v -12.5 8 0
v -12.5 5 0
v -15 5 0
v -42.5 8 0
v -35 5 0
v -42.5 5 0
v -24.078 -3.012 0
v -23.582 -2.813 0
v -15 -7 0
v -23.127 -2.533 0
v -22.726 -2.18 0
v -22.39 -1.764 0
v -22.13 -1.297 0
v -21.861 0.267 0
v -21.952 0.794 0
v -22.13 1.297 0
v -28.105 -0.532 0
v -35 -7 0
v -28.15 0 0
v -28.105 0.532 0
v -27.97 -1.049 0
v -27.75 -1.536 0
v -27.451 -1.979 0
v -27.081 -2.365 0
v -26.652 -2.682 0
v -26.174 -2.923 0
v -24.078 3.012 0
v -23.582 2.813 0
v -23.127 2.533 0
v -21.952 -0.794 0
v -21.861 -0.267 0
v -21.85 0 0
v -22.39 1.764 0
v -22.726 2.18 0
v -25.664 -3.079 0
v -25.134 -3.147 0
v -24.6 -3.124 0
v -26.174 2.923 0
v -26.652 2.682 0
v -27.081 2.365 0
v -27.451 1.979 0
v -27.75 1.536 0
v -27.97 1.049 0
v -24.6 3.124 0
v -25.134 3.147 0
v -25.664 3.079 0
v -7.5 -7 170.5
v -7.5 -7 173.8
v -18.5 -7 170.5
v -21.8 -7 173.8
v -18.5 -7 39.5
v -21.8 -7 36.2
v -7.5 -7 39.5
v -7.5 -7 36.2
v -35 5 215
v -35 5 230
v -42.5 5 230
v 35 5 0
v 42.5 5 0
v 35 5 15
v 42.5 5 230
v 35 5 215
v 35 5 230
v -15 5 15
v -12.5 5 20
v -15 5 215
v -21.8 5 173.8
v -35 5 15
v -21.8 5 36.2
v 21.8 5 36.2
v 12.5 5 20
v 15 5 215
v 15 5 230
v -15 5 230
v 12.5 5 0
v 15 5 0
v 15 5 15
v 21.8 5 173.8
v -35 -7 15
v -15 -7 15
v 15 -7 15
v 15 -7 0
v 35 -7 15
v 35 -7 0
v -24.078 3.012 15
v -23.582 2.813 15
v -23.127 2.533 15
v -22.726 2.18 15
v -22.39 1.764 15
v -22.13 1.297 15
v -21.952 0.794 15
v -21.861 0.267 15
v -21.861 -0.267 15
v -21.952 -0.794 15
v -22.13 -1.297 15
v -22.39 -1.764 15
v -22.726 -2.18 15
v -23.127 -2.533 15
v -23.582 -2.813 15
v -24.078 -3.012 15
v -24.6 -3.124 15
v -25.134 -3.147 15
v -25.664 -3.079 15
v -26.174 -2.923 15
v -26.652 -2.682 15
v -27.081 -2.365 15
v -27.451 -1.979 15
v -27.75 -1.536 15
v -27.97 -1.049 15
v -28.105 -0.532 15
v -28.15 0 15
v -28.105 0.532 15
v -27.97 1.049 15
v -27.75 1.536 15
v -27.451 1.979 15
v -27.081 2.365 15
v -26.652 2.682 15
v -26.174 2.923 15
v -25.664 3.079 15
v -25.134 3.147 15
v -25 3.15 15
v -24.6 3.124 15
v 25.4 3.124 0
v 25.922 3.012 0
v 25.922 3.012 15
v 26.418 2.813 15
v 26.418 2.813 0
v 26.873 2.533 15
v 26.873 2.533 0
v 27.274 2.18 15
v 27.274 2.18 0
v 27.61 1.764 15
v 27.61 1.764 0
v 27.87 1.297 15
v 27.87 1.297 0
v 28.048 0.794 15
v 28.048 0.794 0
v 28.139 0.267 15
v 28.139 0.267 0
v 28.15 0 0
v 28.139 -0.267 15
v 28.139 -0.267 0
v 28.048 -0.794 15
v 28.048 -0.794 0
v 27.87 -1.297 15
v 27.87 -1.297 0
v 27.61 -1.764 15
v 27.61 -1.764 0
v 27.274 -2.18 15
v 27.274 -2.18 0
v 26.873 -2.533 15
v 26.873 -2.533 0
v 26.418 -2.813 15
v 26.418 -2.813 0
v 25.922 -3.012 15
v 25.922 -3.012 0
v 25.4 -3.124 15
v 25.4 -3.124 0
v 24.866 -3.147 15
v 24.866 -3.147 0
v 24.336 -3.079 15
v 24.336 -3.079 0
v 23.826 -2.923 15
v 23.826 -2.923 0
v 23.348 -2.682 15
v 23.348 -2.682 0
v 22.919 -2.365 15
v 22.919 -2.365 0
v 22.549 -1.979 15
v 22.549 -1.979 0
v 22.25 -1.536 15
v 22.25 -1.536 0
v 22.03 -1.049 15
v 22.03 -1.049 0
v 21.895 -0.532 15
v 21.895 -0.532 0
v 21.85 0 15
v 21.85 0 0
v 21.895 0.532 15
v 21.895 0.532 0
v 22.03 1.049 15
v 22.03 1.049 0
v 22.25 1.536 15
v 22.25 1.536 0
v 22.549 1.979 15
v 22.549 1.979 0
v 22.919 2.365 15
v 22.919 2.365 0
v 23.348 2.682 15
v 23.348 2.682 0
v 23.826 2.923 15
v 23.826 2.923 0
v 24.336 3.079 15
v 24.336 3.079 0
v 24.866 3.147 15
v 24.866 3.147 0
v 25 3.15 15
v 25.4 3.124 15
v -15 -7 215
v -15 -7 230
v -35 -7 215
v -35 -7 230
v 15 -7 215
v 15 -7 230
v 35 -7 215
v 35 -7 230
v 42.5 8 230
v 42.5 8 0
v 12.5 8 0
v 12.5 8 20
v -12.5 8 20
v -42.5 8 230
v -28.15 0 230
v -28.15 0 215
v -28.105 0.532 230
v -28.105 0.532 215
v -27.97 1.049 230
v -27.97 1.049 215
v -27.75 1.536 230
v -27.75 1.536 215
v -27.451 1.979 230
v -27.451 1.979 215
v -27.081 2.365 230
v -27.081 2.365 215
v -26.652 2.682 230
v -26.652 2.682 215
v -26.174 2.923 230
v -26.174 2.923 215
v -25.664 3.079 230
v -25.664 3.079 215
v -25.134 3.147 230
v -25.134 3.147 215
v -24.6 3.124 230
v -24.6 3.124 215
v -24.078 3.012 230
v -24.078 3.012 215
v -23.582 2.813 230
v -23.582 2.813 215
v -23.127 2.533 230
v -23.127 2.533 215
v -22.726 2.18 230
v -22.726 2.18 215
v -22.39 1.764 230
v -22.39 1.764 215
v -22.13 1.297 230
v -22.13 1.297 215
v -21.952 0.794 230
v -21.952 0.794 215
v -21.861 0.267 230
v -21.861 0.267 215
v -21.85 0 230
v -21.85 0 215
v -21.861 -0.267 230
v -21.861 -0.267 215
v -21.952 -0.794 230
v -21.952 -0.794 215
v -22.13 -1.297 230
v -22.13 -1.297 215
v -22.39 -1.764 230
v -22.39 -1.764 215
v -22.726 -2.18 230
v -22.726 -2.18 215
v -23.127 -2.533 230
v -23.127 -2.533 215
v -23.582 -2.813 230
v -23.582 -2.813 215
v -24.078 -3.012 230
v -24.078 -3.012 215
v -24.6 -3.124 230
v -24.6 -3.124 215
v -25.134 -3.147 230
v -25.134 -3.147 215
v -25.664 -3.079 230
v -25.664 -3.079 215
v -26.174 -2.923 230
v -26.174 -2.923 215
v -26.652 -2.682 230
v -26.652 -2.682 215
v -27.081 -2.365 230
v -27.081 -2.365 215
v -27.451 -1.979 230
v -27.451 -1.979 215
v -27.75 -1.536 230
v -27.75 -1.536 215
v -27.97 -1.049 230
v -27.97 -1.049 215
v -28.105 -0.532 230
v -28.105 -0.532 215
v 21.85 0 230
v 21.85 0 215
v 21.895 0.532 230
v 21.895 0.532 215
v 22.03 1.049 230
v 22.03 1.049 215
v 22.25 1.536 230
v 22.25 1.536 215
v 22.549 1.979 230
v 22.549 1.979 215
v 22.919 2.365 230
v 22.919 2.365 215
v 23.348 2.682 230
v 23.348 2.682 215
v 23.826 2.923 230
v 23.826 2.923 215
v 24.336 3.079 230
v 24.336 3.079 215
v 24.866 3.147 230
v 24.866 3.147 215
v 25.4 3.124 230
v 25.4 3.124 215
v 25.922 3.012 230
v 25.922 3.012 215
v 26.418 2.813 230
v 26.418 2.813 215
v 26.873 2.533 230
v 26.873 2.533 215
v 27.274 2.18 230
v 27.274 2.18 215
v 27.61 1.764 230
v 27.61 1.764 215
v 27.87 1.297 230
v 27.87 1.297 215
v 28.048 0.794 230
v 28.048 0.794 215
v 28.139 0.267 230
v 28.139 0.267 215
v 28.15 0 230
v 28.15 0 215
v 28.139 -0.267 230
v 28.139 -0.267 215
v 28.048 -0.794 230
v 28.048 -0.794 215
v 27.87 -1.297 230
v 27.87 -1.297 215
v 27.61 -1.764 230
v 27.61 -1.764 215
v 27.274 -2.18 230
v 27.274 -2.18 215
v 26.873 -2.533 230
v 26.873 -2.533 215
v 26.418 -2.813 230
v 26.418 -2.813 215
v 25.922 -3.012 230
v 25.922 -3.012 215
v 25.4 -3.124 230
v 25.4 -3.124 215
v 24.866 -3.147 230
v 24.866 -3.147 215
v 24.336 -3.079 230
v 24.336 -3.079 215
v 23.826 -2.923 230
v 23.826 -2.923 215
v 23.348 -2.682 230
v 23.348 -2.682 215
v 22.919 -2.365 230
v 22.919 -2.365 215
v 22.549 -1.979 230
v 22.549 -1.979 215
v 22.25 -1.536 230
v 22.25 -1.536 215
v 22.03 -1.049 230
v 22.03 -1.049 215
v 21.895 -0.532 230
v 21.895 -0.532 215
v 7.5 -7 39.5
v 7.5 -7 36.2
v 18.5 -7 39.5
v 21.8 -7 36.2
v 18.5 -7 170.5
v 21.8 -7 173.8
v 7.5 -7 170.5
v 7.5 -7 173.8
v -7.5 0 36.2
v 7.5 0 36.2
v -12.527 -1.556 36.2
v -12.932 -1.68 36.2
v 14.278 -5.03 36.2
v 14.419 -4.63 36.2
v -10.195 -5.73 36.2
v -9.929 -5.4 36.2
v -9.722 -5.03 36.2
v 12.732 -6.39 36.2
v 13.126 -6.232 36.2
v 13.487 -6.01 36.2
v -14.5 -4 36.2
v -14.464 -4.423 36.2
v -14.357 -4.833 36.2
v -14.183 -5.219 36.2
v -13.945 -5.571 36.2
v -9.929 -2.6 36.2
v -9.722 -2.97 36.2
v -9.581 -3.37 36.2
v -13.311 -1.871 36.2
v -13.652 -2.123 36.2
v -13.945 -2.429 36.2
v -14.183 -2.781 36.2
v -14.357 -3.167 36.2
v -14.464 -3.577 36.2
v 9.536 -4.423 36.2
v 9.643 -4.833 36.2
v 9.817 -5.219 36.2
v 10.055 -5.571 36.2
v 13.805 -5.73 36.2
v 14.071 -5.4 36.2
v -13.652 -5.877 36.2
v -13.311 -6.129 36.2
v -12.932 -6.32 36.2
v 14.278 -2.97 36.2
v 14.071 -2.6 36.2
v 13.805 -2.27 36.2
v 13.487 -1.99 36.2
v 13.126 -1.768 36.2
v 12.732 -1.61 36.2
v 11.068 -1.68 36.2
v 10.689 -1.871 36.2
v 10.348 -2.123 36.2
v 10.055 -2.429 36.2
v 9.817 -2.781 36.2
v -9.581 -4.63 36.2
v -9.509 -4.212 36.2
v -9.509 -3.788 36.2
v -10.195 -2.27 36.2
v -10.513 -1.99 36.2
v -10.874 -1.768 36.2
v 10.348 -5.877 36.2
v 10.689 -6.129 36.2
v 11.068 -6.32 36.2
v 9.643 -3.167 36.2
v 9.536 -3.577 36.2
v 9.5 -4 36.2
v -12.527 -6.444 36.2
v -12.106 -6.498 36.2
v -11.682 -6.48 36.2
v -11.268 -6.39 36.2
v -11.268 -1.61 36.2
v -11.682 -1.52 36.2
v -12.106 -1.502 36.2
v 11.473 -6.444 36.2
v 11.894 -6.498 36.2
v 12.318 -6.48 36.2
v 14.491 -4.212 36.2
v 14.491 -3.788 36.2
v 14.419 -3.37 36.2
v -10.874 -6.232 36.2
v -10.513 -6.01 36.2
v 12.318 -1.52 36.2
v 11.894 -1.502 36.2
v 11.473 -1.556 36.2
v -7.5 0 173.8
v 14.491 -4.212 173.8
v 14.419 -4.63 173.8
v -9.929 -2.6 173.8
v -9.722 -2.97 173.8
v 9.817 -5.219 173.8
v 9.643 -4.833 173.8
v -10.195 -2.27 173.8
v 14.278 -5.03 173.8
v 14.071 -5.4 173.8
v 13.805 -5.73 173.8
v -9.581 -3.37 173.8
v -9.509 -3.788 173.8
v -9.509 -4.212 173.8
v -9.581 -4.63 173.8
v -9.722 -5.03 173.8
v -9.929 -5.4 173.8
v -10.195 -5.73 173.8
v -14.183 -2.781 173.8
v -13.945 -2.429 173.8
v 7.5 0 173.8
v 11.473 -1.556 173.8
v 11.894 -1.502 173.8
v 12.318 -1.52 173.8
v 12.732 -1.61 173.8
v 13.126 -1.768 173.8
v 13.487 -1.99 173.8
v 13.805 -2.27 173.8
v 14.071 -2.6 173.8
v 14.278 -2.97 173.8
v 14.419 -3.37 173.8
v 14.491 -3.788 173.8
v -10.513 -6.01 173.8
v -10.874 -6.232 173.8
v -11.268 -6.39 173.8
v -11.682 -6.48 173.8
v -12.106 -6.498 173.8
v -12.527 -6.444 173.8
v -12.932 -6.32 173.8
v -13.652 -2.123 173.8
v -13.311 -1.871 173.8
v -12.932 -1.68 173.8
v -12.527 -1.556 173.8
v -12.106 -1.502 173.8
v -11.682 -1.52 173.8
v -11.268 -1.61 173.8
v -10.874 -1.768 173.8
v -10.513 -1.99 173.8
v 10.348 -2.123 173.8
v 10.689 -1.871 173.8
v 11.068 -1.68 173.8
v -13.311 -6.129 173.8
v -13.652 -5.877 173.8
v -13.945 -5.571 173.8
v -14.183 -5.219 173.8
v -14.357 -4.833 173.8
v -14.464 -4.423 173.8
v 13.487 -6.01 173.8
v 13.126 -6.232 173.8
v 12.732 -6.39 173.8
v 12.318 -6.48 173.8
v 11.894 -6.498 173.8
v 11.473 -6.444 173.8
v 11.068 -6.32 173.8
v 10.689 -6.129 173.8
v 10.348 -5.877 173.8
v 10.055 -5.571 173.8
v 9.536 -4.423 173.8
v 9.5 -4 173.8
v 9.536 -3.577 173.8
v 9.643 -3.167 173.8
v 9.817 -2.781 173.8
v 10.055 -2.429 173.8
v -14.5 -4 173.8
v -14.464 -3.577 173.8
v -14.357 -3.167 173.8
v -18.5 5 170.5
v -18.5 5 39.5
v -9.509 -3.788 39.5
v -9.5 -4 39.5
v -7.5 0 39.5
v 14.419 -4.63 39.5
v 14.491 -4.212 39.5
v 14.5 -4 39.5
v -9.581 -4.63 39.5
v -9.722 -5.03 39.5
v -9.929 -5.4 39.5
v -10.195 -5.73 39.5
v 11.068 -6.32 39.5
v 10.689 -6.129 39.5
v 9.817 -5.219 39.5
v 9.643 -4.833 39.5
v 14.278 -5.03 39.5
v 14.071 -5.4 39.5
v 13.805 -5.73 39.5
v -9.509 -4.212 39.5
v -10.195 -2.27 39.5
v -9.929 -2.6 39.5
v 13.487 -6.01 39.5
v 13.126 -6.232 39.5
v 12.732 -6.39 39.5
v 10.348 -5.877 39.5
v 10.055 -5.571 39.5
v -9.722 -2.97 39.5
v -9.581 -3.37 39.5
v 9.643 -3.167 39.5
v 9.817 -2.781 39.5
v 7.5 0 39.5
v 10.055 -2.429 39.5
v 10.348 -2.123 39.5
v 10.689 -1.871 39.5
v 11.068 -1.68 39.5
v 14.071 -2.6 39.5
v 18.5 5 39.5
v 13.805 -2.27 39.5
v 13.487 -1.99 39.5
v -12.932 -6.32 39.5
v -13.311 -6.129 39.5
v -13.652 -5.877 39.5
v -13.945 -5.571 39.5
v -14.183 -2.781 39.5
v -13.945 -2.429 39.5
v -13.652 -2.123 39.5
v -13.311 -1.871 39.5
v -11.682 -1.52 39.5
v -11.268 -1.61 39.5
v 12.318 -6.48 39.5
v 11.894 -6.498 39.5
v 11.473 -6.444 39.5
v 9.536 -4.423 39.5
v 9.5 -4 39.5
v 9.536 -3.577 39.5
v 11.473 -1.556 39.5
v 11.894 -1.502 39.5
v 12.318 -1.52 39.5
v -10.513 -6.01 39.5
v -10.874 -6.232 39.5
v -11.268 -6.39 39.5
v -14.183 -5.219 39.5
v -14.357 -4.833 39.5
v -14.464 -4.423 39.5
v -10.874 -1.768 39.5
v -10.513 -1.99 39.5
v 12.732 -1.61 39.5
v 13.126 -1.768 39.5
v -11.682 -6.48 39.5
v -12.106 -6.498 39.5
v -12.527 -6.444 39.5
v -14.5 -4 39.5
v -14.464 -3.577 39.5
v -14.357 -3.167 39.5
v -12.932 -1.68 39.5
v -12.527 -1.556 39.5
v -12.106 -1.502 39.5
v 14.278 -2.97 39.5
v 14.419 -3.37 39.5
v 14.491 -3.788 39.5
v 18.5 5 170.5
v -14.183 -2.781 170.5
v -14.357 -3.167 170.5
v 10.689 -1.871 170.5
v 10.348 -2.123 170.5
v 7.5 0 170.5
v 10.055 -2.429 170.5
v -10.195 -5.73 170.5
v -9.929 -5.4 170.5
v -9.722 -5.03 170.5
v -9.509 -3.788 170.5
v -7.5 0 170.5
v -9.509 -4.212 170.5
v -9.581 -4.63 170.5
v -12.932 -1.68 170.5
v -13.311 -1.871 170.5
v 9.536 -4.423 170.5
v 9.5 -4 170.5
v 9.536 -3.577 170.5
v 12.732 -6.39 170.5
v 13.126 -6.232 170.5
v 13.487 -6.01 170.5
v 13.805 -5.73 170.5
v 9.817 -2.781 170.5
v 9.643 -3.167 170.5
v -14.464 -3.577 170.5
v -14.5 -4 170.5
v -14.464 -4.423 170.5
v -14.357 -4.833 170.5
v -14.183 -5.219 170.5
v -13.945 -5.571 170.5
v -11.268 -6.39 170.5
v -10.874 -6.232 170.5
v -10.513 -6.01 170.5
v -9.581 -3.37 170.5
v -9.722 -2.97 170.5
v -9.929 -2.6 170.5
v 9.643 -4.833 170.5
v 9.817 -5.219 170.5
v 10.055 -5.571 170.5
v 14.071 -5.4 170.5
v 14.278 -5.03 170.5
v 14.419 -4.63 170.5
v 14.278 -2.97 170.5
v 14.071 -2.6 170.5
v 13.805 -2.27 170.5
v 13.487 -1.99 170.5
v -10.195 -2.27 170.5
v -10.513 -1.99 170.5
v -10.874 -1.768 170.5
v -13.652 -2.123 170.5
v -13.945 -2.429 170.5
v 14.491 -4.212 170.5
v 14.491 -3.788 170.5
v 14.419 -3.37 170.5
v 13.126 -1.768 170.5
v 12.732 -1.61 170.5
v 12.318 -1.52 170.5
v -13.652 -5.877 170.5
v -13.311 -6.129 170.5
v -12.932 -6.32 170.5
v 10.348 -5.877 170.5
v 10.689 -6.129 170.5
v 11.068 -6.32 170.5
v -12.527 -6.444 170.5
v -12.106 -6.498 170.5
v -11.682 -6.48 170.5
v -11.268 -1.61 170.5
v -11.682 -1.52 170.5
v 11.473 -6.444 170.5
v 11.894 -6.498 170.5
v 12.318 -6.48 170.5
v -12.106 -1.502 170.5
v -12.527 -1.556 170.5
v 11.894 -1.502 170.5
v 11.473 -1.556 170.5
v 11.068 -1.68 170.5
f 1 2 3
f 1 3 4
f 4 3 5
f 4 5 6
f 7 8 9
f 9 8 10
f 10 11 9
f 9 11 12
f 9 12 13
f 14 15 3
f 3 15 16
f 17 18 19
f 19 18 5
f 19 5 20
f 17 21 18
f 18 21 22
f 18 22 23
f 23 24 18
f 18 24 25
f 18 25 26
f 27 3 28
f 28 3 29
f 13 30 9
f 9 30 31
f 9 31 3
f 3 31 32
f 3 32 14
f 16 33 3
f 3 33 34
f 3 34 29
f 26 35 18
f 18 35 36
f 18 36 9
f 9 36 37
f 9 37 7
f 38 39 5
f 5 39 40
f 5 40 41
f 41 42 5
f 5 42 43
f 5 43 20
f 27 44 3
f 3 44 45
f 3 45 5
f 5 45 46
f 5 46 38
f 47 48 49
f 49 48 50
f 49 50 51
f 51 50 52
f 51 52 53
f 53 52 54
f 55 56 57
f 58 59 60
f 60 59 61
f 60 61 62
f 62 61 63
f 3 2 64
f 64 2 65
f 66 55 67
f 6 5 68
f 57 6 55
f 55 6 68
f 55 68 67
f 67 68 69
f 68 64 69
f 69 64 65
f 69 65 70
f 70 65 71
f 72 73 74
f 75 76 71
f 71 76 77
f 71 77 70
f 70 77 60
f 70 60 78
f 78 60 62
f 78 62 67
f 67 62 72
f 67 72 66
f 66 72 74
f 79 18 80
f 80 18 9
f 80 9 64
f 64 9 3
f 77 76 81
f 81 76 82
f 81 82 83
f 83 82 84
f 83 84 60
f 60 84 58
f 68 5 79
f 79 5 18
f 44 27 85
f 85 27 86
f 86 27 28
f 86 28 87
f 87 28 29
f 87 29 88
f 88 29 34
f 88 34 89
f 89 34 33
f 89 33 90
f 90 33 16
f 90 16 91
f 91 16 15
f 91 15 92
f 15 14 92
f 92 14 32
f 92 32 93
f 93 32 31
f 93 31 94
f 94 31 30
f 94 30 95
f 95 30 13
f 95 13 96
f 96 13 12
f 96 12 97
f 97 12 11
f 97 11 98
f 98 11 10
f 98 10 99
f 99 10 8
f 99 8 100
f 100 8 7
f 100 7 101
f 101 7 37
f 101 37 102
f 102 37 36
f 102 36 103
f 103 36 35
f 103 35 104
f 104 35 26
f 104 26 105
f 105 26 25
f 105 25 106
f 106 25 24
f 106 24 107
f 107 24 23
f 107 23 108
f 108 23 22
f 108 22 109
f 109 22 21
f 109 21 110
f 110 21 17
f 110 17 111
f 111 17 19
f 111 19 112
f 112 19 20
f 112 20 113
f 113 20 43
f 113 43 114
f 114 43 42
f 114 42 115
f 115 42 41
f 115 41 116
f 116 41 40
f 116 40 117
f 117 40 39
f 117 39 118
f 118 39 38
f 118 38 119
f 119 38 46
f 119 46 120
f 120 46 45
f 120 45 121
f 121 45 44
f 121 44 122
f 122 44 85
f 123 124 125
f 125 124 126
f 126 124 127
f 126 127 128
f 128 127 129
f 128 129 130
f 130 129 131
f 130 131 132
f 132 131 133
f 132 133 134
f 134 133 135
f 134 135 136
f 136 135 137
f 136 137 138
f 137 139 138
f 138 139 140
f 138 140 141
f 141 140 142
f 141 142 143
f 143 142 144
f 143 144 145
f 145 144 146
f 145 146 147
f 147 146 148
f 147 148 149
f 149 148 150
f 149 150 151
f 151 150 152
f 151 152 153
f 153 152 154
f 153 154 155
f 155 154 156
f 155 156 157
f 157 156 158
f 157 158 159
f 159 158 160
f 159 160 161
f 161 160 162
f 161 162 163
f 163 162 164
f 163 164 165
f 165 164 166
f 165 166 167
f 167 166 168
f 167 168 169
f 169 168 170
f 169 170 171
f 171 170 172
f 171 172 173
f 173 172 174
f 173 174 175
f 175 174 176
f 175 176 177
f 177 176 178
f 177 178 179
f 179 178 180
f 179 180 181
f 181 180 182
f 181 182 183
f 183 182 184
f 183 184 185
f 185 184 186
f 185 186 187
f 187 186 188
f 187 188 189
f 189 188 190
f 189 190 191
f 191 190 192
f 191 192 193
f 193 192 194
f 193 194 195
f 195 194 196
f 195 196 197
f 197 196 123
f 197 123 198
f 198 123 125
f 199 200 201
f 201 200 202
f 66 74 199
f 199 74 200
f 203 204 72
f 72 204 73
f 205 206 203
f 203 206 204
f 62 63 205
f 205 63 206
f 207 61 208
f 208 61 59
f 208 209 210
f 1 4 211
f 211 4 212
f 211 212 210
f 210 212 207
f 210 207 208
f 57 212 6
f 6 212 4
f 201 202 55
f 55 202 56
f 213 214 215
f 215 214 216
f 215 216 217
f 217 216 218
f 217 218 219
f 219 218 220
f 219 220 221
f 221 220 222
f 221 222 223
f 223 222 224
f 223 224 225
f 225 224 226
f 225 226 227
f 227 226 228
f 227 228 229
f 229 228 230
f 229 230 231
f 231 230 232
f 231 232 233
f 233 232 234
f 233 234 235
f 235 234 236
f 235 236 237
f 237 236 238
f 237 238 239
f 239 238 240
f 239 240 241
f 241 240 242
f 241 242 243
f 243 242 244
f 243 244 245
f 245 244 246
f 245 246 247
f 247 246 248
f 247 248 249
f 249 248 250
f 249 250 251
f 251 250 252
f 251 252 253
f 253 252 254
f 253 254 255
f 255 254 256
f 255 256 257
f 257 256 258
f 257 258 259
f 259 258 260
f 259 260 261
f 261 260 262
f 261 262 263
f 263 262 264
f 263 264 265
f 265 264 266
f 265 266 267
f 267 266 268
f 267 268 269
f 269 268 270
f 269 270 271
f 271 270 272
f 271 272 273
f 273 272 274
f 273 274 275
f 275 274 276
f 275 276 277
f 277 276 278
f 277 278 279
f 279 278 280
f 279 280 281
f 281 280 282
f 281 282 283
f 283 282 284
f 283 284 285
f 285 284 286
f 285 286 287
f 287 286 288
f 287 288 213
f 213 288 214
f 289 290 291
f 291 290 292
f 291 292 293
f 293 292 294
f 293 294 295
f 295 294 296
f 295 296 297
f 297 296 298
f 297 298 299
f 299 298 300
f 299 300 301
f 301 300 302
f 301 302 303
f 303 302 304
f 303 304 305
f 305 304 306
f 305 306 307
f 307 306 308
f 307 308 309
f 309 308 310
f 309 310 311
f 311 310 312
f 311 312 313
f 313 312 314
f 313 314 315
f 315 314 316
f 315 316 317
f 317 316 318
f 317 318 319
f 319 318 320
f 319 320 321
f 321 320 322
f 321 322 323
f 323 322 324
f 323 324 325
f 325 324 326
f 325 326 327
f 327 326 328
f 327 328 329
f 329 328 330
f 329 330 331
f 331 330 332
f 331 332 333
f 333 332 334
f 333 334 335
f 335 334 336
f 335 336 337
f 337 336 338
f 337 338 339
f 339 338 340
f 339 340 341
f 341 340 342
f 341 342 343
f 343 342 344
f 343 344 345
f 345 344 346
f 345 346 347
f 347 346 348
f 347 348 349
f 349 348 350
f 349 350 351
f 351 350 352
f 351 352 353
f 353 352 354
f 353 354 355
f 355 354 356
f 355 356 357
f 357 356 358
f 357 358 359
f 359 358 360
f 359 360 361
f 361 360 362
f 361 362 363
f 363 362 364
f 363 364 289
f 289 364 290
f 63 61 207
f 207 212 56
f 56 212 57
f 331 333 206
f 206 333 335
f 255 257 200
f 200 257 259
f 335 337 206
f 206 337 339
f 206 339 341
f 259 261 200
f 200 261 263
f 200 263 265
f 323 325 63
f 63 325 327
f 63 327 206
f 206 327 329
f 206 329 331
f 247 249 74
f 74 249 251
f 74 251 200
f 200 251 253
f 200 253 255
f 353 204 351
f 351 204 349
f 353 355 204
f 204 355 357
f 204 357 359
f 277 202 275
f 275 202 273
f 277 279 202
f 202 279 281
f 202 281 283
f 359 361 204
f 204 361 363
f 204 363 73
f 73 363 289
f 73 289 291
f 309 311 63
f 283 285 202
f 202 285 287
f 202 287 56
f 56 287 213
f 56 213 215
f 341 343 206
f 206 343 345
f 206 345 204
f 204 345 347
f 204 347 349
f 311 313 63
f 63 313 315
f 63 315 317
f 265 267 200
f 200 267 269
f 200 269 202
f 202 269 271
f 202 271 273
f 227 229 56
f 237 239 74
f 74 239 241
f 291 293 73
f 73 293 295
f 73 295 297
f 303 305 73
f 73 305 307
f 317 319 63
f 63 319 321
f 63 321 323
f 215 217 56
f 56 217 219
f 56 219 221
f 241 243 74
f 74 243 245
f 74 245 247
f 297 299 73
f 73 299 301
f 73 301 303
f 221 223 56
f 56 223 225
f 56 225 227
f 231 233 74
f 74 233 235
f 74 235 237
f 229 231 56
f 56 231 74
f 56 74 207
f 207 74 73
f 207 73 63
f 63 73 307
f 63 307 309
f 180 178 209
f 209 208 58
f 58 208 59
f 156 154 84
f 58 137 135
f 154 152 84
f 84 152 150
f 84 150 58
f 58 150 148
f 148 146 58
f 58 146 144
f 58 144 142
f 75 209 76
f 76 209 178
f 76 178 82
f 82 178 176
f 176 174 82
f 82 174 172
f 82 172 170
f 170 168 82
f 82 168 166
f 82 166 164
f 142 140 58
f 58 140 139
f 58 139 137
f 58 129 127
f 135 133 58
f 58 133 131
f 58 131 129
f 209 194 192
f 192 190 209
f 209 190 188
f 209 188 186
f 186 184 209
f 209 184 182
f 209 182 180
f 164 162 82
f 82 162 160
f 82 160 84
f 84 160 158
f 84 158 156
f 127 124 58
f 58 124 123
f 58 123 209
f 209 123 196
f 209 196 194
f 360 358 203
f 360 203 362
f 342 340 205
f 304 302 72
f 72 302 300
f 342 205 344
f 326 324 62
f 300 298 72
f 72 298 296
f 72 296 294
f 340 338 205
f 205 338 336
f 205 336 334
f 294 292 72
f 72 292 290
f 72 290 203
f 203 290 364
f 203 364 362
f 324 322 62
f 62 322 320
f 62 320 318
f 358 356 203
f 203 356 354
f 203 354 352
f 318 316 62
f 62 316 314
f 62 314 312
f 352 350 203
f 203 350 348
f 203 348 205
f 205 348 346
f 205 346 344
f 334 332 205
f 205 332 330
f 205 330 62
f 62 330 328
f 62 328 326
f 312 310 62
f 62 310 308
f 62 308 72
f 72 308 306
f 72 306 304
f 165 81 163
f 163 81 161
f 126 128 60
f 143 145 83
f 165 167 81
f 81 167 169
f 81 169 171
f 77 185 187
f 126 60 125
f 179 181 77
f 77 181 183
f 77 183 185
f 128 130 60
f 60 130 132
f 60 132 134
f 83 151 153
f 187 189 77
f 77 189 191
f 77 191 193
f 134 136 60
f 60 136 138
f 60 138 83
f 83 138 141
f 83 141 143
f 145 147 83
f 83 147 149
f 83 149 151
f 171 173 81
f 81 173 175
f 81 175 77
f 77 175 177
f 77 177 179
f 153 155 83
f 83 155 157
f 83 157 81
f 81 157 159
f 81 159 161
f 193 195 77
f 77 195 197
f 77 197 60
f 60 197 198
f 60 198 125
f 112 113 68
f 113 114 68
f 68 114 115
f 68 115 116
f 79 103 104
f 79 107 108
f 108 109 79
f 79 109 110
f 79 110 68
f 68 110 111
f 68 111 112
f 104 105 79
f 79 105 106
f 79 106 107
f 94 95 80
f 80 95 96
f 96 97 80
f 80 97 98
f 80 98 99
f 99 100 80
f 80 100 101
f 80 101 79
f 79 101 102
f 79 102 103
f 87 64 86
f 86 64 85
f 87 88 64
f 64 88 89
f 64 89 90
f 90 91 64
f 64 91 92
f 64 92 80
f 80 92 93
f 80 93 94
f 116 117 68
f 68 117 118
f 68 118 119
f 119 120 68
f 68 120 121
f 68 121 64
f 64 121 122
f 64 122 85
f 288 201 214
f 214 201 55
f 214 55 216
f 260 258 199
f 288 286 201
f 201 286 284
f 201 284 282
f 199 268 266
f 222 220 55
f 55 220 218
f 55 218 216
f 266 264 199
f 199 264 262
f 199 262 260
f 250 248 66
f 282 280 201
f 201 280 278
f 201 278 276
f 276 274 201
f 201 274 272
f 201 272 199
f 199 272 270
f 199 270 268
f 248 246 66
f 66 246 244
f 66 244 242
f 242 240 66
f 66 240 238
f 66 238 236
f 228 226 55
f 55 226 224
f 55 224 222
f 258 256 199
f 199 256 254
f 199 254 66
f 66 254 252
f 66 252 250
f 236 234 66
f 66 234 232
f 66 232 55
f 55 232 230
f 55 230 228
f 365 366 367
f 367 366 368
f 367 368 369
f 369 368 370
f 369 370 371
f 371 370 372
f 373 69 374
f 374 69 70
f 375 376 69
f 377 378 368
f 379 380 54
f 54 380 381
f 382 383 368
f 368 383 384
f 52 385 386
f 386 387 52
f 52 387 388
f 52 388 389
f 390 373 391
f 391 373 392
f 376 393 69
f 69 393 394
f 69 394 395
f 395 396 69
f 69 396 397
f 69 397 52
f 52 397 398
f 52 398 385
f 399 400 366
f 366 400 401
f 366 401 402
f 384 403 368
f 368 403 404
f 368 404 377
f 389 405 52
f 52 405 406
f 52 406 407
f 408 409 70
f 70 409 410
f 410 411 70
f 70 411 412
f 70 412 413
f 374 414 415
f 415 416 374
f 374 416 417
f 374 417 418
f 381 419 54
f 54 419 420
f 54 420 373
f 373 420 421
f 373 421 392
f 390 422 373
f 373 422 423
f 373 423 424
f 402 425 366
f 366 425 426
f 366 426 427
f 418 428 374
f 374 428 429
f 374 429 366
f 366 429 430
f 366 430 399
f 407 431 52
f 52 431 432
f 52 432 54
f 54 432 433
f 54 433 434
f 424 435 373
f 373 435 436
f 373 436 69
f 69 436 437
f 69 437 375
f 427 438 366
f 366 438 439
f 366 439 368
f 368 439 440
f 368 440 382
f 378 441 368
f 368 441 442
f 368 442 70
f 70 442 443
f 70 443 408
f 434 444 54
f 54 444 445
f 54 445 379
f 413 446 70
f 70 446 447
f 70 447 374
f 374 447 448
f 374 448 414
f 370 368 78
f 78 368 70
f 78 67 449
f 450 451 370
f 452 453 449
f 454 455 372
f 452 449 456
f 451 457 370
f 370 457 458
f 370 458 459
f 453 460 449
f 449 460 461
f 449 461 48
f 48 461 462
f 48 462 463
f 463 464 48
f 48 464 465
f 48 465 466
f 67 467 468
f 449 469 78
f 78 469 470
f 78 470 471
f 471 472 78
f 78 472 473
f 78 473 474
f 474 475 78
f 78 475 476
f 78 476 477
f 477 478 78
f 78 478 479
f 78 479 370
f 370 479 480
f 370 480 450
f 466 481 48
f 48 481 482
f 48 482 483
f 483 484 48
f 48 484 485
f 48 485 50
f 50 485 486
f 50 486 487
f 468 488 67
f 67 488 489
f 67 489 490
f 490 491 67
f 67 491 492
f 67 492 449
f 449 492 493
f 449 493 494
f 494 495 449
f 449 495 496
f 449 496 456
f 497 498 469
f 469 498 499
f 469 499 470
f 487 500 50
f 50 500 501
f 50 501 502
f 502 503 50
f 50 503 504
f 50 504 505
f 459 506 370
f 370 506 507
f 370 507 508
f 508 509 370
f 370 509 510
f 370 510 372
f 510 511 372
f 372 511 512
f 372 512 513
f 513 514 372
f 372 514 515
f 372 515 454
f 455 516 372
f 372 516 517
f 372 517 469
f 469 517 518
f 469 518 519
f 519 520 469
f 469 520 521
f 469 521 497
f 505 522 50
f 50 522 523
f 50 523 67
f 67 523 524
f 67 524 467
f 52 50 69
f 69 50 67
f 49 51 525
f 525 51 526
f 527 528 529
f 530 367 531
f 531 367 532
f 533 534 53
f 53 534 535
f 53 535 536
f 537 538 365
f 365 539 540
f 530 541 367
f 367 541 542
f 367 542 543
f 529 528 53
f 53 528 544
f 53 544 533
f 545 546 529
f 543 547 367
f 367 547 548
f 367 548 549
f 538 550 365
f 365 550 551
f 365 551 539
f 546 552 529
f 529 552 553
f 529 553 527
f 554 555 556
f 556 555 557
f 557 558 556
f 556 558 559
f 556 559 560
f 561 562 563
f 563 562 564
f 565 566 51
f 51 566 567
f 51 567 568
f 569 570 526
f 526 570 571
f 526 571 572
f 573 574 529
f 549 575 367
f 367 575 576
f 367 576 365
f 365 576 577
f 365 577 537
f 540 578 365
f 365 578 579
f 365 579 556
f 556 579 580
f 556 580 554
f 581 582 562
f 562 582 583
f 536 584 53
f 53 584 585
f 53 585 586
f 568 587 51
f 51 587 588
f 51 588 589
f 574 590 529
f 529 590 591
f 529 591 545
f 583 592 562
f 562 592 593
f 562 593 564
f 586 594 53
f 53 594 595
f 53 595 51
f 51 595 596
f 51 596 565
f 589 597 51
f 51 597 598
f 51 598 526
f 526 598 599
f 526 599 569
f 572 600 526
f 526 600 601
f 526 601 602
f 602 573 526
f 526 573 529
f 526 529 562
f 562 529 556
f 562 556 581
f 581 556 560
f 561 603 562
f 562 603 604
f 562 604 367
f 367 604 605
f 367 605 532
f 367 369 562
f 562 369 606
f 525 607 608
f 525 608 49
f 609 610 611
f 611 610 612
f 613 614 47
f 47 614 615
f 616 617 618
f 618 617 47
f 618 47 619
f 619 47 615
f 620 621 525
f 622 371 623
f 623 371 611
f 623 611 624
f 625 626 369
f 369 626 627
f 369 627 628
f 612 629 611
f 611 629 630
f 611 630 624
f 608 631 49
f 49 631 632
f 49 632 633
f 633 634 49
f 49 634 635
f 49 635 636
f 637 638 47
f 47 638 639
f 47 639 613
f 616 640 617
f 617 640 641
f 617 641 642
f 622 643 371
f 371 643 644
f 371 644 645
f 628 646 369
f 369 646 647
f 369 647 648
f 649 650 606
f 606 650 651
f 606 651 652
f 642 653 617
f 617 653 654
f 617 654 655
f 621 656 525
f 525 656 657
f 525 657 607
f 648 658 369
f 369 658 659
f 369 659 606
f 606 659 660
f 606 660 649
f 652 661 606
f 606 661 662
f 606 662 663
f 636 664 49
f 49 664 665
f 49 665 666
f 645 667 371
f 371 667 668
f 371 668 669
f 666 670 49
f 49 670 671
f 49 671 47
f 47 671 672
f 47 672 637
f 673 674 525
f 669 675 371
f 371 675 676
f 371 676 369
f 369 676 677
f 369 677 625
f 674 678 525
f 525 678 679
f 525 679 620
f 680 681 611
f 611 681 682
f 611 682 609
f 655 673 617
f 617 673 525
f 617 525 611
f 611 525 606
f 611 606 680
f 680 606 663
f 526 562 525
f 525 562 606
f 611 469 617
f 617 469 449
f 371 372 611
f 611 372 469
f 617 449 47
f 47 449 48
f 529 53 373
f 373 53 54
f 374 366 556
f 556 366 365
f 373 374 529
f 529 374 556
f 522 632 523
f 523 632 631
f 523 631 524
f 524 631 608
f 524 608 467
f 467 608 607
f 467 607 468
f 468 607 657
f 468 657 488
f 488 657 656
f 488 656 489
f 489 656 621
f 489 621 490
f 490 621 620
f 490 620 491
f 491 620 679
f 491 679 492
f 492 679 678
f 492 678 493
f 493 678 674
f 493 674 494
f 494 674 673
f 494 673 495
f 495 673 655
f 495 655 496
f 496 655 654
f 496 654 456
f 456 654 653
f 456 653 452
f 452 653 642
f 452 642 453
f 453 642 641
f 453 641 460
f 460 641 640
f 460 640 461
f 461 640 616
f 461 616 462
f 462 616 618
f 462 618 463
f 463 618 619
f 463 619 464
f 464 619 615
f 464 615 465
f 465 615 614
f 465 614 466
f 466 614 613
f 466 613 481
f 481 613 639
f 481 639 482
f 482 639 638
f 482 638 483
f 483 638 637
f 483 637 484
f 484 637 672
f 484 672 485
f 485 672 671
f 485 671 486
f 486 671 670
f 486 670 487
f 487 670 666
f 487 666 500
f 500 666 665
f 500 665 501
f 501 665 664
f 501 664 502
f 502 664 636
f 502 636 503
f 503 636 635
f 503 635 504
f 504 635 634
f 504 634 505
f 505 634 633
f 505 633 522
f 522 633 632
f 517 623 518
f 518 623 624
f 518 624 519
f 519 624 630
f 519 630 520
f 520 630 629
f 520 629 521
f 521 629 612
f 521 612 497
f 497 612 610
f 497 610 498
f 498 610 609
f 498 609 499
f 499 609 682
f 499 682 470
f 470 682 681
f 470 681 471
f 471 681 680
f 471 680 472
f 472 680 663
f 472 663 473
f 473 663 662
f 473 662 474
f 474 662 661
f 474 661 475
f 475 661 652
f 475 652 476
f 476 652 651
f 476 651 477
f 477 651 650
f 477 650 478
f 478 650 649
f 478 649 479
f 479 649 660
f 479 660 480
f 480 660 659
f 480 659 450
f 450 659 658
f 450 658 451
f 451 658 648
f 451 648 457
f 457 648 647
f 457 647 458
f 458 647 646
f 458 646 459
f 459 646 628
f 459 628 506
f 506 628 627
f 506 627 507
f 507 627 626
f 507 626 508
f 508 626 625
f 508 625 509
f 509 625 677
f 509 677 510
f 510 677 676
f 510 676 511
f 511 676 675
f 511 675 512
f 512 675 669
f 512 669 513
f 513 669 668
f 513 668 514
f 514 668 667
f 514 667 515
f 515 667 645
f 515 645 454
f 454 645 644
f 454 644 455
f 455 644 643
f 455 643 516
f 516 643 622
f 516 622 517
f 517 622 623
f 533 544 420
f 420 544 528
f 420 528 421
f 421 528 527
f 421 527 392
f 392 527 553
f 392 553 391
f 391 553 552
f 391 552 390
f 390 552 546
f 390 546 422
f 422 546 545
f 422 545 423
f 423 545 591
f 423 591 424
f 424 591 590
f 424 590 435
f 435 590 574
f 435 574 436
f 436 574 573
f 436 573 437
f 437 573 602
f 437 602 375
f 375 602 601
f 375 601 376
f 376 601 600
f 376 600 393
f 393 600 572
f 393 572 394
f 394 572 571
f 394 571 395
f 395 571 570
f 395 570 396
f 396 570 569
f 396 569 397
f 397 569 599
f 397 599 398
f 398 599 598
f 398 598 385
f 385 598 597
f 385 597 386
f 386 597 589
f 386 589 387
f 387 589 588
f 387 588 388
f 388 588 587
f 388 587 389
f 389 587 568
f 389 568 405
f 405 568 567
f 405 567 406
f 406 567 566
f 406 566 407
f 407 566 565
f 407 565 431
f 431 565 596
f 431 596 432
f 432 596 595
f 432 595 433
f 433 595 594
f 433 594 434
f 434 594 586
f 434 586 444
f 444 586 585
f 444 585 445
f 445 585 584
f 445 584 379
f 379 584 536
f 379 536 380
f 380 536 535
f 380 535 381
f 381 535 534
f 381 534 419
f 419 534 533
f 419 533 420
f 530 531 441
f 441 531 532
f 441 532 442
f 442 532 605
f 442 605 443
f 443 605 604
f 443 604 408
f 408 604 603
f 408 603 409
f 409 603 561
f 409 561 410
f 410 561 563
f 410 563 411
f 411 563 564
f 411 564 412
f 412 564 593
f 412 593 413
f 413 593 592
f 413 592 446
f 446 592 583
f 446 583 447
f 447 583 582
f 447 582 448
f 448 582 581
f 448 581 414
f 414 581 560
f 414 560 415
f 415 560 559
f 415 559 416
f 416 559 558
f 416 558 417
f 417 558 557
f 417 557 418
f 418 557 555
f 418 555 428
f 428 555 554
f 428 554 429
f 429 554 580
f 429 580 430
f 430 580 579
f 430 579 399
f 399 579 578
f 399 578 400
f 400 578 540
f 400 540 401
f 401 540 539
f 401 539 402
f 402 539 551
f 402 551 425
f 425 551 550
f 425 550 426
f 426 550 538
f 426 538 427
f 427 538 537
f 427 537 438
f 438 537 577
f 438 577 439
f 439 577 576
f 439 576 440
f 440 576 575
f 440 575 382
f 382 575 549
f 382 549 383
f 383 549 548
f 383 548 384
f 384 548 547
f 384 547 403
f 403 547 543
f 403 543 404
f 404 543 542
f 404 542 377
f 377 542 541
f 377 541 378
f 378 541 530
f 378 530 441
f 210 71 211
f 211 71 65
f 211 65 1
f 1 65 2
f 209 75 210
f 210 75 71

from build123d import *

# Parameters (mm, degrees)
SKETCH1_W           = 20
SKETCH1_H           = 12
SKETCH1_R           = 3.15
SKETCH1_W_2         = 85
SKETCH1_H_2         = 3
BOSS_EXTRUDE1_DEPTH = 230
SKETCH2_W           = 200
SKETCH2_H           = 15
CUT_EXTRUDE1_DEPTH  = 210
SKETCH3_W           = 43.6
SKETCH3_H           = 137.6
SKETCH3_W_2         = 37
SKETCH3_H_2         = 131
BOSS_EXTRUDE2_DEPTH = 12
CUT_EXTRUDE2_DEPTH  = 199.566588327
SKETCH6_R           = 2.5
CUT_EXTRUDE3_DEPTH  = 150
SKETCH7_W           = 25
SKETCH7_H           = 40
CUT_EXTRUDE4_DEPTH  = 150


with BuildPart() as part:
    # Sketch1 → Boss-Extrude1 (new body)
    # profile 1 of 3: a face of its own
    with BuildSketch(Plane.XY):
        with Locations((-25, -1)):
            Rectangle(SKETCH1_W, SKETCH1_H)
        with Locations((-25, 0)):
            Circle(SKETCH1_R, mode=Mode.SUBTRACT)
    # profile 2 of 3: a face of its own
    with BuildSketch(Plane.XY):
        with Locations((25, -1)):
            Rectangle(SKETCH1_W, SKETCH1_H)
        with Locations((25, 0)):
            Circle(SKETCH1_R, mode=Mode.SUBTRACT)
    # profile 3 of 3: a face of its own
    with BuildSketch(Plane.XY):
        with Locations((0, 6.5)):
            Rectangle(SKETCH1_W_2, SKETCH1_H_2)
    extrude(amount=BOSS_EXTRUDE1_DEPTH)

    # Sketch2 → Cut-Extrude1 (cut)
    with BuildSketch(Plane.ZY.offset(35)):
        with Locations((115, -2.5)):
            Rectangle(SKETCH2_W, SKETCH2_H)
    extrude(amount=-CUT_EXTRUDE1_DEPTH, mode=Mode.SUBTRACT)

    # Sketch3 → Boss-Extrude2 (add)
    with BuildSketch(Plane.XZ.offset(-5)):
        with Locations((0, 105)):
            Rectangle(SKETCH3_W, SKETCH3_H)
        with Locations((0, 105)):
            Rectangle(SKETCH3_W_2, SKETCH3_H_2, mode=Mode.SUBTRACT)
    extrude(amount=BOSS_EXTRUDE2_DEPTH)

    # Sketch4 → Cut-Extrude2 (cut, through all)
    with BuildSketch(Plane(origin=(0, 0, 36.2), x_dir=(-1, 0, 0), z_dir=(0, 0, -1))):
        Polygon((0, 0), (-7.5, 0), (-7.5, -8), (7.5, -8), (7.5, 0), align=None)
    extrude(amount=-CUT_EXTRUDE2_DEPTH, mode=Mode.SUBTRACT)

    # Sketch6 → Cut-Extrude3 (cut)
    with BuildSketch(Plane(origin=(0, 0, 36.2), x_dir=(-1, 0, 0), z_dir=(0, 0, -1))):
        with Locations((-12, -4)):
            Circle(SKETCH6_R)
        with Locations((12, -4)):
            Circle(SKETCH6_R)
    extrude(amount=-CUT_EXTRUDE3_DEPTH, mode=Mode.SUBTRACT)

    # Sketch7 → Cut-Extrude4 (cut)
    with BuildSketch(Plane(origin=(0, 8, 0), x_dir=(1, 0, 0), z_dir=(0, 1, 0))):
        Rectangle(SKETCH7_W, SKETCH7_H)
    extrude(amount=-CUT_EXTRUDE4_DEPTH, mode=Mode.SUBTRACT)


solid = part.part
